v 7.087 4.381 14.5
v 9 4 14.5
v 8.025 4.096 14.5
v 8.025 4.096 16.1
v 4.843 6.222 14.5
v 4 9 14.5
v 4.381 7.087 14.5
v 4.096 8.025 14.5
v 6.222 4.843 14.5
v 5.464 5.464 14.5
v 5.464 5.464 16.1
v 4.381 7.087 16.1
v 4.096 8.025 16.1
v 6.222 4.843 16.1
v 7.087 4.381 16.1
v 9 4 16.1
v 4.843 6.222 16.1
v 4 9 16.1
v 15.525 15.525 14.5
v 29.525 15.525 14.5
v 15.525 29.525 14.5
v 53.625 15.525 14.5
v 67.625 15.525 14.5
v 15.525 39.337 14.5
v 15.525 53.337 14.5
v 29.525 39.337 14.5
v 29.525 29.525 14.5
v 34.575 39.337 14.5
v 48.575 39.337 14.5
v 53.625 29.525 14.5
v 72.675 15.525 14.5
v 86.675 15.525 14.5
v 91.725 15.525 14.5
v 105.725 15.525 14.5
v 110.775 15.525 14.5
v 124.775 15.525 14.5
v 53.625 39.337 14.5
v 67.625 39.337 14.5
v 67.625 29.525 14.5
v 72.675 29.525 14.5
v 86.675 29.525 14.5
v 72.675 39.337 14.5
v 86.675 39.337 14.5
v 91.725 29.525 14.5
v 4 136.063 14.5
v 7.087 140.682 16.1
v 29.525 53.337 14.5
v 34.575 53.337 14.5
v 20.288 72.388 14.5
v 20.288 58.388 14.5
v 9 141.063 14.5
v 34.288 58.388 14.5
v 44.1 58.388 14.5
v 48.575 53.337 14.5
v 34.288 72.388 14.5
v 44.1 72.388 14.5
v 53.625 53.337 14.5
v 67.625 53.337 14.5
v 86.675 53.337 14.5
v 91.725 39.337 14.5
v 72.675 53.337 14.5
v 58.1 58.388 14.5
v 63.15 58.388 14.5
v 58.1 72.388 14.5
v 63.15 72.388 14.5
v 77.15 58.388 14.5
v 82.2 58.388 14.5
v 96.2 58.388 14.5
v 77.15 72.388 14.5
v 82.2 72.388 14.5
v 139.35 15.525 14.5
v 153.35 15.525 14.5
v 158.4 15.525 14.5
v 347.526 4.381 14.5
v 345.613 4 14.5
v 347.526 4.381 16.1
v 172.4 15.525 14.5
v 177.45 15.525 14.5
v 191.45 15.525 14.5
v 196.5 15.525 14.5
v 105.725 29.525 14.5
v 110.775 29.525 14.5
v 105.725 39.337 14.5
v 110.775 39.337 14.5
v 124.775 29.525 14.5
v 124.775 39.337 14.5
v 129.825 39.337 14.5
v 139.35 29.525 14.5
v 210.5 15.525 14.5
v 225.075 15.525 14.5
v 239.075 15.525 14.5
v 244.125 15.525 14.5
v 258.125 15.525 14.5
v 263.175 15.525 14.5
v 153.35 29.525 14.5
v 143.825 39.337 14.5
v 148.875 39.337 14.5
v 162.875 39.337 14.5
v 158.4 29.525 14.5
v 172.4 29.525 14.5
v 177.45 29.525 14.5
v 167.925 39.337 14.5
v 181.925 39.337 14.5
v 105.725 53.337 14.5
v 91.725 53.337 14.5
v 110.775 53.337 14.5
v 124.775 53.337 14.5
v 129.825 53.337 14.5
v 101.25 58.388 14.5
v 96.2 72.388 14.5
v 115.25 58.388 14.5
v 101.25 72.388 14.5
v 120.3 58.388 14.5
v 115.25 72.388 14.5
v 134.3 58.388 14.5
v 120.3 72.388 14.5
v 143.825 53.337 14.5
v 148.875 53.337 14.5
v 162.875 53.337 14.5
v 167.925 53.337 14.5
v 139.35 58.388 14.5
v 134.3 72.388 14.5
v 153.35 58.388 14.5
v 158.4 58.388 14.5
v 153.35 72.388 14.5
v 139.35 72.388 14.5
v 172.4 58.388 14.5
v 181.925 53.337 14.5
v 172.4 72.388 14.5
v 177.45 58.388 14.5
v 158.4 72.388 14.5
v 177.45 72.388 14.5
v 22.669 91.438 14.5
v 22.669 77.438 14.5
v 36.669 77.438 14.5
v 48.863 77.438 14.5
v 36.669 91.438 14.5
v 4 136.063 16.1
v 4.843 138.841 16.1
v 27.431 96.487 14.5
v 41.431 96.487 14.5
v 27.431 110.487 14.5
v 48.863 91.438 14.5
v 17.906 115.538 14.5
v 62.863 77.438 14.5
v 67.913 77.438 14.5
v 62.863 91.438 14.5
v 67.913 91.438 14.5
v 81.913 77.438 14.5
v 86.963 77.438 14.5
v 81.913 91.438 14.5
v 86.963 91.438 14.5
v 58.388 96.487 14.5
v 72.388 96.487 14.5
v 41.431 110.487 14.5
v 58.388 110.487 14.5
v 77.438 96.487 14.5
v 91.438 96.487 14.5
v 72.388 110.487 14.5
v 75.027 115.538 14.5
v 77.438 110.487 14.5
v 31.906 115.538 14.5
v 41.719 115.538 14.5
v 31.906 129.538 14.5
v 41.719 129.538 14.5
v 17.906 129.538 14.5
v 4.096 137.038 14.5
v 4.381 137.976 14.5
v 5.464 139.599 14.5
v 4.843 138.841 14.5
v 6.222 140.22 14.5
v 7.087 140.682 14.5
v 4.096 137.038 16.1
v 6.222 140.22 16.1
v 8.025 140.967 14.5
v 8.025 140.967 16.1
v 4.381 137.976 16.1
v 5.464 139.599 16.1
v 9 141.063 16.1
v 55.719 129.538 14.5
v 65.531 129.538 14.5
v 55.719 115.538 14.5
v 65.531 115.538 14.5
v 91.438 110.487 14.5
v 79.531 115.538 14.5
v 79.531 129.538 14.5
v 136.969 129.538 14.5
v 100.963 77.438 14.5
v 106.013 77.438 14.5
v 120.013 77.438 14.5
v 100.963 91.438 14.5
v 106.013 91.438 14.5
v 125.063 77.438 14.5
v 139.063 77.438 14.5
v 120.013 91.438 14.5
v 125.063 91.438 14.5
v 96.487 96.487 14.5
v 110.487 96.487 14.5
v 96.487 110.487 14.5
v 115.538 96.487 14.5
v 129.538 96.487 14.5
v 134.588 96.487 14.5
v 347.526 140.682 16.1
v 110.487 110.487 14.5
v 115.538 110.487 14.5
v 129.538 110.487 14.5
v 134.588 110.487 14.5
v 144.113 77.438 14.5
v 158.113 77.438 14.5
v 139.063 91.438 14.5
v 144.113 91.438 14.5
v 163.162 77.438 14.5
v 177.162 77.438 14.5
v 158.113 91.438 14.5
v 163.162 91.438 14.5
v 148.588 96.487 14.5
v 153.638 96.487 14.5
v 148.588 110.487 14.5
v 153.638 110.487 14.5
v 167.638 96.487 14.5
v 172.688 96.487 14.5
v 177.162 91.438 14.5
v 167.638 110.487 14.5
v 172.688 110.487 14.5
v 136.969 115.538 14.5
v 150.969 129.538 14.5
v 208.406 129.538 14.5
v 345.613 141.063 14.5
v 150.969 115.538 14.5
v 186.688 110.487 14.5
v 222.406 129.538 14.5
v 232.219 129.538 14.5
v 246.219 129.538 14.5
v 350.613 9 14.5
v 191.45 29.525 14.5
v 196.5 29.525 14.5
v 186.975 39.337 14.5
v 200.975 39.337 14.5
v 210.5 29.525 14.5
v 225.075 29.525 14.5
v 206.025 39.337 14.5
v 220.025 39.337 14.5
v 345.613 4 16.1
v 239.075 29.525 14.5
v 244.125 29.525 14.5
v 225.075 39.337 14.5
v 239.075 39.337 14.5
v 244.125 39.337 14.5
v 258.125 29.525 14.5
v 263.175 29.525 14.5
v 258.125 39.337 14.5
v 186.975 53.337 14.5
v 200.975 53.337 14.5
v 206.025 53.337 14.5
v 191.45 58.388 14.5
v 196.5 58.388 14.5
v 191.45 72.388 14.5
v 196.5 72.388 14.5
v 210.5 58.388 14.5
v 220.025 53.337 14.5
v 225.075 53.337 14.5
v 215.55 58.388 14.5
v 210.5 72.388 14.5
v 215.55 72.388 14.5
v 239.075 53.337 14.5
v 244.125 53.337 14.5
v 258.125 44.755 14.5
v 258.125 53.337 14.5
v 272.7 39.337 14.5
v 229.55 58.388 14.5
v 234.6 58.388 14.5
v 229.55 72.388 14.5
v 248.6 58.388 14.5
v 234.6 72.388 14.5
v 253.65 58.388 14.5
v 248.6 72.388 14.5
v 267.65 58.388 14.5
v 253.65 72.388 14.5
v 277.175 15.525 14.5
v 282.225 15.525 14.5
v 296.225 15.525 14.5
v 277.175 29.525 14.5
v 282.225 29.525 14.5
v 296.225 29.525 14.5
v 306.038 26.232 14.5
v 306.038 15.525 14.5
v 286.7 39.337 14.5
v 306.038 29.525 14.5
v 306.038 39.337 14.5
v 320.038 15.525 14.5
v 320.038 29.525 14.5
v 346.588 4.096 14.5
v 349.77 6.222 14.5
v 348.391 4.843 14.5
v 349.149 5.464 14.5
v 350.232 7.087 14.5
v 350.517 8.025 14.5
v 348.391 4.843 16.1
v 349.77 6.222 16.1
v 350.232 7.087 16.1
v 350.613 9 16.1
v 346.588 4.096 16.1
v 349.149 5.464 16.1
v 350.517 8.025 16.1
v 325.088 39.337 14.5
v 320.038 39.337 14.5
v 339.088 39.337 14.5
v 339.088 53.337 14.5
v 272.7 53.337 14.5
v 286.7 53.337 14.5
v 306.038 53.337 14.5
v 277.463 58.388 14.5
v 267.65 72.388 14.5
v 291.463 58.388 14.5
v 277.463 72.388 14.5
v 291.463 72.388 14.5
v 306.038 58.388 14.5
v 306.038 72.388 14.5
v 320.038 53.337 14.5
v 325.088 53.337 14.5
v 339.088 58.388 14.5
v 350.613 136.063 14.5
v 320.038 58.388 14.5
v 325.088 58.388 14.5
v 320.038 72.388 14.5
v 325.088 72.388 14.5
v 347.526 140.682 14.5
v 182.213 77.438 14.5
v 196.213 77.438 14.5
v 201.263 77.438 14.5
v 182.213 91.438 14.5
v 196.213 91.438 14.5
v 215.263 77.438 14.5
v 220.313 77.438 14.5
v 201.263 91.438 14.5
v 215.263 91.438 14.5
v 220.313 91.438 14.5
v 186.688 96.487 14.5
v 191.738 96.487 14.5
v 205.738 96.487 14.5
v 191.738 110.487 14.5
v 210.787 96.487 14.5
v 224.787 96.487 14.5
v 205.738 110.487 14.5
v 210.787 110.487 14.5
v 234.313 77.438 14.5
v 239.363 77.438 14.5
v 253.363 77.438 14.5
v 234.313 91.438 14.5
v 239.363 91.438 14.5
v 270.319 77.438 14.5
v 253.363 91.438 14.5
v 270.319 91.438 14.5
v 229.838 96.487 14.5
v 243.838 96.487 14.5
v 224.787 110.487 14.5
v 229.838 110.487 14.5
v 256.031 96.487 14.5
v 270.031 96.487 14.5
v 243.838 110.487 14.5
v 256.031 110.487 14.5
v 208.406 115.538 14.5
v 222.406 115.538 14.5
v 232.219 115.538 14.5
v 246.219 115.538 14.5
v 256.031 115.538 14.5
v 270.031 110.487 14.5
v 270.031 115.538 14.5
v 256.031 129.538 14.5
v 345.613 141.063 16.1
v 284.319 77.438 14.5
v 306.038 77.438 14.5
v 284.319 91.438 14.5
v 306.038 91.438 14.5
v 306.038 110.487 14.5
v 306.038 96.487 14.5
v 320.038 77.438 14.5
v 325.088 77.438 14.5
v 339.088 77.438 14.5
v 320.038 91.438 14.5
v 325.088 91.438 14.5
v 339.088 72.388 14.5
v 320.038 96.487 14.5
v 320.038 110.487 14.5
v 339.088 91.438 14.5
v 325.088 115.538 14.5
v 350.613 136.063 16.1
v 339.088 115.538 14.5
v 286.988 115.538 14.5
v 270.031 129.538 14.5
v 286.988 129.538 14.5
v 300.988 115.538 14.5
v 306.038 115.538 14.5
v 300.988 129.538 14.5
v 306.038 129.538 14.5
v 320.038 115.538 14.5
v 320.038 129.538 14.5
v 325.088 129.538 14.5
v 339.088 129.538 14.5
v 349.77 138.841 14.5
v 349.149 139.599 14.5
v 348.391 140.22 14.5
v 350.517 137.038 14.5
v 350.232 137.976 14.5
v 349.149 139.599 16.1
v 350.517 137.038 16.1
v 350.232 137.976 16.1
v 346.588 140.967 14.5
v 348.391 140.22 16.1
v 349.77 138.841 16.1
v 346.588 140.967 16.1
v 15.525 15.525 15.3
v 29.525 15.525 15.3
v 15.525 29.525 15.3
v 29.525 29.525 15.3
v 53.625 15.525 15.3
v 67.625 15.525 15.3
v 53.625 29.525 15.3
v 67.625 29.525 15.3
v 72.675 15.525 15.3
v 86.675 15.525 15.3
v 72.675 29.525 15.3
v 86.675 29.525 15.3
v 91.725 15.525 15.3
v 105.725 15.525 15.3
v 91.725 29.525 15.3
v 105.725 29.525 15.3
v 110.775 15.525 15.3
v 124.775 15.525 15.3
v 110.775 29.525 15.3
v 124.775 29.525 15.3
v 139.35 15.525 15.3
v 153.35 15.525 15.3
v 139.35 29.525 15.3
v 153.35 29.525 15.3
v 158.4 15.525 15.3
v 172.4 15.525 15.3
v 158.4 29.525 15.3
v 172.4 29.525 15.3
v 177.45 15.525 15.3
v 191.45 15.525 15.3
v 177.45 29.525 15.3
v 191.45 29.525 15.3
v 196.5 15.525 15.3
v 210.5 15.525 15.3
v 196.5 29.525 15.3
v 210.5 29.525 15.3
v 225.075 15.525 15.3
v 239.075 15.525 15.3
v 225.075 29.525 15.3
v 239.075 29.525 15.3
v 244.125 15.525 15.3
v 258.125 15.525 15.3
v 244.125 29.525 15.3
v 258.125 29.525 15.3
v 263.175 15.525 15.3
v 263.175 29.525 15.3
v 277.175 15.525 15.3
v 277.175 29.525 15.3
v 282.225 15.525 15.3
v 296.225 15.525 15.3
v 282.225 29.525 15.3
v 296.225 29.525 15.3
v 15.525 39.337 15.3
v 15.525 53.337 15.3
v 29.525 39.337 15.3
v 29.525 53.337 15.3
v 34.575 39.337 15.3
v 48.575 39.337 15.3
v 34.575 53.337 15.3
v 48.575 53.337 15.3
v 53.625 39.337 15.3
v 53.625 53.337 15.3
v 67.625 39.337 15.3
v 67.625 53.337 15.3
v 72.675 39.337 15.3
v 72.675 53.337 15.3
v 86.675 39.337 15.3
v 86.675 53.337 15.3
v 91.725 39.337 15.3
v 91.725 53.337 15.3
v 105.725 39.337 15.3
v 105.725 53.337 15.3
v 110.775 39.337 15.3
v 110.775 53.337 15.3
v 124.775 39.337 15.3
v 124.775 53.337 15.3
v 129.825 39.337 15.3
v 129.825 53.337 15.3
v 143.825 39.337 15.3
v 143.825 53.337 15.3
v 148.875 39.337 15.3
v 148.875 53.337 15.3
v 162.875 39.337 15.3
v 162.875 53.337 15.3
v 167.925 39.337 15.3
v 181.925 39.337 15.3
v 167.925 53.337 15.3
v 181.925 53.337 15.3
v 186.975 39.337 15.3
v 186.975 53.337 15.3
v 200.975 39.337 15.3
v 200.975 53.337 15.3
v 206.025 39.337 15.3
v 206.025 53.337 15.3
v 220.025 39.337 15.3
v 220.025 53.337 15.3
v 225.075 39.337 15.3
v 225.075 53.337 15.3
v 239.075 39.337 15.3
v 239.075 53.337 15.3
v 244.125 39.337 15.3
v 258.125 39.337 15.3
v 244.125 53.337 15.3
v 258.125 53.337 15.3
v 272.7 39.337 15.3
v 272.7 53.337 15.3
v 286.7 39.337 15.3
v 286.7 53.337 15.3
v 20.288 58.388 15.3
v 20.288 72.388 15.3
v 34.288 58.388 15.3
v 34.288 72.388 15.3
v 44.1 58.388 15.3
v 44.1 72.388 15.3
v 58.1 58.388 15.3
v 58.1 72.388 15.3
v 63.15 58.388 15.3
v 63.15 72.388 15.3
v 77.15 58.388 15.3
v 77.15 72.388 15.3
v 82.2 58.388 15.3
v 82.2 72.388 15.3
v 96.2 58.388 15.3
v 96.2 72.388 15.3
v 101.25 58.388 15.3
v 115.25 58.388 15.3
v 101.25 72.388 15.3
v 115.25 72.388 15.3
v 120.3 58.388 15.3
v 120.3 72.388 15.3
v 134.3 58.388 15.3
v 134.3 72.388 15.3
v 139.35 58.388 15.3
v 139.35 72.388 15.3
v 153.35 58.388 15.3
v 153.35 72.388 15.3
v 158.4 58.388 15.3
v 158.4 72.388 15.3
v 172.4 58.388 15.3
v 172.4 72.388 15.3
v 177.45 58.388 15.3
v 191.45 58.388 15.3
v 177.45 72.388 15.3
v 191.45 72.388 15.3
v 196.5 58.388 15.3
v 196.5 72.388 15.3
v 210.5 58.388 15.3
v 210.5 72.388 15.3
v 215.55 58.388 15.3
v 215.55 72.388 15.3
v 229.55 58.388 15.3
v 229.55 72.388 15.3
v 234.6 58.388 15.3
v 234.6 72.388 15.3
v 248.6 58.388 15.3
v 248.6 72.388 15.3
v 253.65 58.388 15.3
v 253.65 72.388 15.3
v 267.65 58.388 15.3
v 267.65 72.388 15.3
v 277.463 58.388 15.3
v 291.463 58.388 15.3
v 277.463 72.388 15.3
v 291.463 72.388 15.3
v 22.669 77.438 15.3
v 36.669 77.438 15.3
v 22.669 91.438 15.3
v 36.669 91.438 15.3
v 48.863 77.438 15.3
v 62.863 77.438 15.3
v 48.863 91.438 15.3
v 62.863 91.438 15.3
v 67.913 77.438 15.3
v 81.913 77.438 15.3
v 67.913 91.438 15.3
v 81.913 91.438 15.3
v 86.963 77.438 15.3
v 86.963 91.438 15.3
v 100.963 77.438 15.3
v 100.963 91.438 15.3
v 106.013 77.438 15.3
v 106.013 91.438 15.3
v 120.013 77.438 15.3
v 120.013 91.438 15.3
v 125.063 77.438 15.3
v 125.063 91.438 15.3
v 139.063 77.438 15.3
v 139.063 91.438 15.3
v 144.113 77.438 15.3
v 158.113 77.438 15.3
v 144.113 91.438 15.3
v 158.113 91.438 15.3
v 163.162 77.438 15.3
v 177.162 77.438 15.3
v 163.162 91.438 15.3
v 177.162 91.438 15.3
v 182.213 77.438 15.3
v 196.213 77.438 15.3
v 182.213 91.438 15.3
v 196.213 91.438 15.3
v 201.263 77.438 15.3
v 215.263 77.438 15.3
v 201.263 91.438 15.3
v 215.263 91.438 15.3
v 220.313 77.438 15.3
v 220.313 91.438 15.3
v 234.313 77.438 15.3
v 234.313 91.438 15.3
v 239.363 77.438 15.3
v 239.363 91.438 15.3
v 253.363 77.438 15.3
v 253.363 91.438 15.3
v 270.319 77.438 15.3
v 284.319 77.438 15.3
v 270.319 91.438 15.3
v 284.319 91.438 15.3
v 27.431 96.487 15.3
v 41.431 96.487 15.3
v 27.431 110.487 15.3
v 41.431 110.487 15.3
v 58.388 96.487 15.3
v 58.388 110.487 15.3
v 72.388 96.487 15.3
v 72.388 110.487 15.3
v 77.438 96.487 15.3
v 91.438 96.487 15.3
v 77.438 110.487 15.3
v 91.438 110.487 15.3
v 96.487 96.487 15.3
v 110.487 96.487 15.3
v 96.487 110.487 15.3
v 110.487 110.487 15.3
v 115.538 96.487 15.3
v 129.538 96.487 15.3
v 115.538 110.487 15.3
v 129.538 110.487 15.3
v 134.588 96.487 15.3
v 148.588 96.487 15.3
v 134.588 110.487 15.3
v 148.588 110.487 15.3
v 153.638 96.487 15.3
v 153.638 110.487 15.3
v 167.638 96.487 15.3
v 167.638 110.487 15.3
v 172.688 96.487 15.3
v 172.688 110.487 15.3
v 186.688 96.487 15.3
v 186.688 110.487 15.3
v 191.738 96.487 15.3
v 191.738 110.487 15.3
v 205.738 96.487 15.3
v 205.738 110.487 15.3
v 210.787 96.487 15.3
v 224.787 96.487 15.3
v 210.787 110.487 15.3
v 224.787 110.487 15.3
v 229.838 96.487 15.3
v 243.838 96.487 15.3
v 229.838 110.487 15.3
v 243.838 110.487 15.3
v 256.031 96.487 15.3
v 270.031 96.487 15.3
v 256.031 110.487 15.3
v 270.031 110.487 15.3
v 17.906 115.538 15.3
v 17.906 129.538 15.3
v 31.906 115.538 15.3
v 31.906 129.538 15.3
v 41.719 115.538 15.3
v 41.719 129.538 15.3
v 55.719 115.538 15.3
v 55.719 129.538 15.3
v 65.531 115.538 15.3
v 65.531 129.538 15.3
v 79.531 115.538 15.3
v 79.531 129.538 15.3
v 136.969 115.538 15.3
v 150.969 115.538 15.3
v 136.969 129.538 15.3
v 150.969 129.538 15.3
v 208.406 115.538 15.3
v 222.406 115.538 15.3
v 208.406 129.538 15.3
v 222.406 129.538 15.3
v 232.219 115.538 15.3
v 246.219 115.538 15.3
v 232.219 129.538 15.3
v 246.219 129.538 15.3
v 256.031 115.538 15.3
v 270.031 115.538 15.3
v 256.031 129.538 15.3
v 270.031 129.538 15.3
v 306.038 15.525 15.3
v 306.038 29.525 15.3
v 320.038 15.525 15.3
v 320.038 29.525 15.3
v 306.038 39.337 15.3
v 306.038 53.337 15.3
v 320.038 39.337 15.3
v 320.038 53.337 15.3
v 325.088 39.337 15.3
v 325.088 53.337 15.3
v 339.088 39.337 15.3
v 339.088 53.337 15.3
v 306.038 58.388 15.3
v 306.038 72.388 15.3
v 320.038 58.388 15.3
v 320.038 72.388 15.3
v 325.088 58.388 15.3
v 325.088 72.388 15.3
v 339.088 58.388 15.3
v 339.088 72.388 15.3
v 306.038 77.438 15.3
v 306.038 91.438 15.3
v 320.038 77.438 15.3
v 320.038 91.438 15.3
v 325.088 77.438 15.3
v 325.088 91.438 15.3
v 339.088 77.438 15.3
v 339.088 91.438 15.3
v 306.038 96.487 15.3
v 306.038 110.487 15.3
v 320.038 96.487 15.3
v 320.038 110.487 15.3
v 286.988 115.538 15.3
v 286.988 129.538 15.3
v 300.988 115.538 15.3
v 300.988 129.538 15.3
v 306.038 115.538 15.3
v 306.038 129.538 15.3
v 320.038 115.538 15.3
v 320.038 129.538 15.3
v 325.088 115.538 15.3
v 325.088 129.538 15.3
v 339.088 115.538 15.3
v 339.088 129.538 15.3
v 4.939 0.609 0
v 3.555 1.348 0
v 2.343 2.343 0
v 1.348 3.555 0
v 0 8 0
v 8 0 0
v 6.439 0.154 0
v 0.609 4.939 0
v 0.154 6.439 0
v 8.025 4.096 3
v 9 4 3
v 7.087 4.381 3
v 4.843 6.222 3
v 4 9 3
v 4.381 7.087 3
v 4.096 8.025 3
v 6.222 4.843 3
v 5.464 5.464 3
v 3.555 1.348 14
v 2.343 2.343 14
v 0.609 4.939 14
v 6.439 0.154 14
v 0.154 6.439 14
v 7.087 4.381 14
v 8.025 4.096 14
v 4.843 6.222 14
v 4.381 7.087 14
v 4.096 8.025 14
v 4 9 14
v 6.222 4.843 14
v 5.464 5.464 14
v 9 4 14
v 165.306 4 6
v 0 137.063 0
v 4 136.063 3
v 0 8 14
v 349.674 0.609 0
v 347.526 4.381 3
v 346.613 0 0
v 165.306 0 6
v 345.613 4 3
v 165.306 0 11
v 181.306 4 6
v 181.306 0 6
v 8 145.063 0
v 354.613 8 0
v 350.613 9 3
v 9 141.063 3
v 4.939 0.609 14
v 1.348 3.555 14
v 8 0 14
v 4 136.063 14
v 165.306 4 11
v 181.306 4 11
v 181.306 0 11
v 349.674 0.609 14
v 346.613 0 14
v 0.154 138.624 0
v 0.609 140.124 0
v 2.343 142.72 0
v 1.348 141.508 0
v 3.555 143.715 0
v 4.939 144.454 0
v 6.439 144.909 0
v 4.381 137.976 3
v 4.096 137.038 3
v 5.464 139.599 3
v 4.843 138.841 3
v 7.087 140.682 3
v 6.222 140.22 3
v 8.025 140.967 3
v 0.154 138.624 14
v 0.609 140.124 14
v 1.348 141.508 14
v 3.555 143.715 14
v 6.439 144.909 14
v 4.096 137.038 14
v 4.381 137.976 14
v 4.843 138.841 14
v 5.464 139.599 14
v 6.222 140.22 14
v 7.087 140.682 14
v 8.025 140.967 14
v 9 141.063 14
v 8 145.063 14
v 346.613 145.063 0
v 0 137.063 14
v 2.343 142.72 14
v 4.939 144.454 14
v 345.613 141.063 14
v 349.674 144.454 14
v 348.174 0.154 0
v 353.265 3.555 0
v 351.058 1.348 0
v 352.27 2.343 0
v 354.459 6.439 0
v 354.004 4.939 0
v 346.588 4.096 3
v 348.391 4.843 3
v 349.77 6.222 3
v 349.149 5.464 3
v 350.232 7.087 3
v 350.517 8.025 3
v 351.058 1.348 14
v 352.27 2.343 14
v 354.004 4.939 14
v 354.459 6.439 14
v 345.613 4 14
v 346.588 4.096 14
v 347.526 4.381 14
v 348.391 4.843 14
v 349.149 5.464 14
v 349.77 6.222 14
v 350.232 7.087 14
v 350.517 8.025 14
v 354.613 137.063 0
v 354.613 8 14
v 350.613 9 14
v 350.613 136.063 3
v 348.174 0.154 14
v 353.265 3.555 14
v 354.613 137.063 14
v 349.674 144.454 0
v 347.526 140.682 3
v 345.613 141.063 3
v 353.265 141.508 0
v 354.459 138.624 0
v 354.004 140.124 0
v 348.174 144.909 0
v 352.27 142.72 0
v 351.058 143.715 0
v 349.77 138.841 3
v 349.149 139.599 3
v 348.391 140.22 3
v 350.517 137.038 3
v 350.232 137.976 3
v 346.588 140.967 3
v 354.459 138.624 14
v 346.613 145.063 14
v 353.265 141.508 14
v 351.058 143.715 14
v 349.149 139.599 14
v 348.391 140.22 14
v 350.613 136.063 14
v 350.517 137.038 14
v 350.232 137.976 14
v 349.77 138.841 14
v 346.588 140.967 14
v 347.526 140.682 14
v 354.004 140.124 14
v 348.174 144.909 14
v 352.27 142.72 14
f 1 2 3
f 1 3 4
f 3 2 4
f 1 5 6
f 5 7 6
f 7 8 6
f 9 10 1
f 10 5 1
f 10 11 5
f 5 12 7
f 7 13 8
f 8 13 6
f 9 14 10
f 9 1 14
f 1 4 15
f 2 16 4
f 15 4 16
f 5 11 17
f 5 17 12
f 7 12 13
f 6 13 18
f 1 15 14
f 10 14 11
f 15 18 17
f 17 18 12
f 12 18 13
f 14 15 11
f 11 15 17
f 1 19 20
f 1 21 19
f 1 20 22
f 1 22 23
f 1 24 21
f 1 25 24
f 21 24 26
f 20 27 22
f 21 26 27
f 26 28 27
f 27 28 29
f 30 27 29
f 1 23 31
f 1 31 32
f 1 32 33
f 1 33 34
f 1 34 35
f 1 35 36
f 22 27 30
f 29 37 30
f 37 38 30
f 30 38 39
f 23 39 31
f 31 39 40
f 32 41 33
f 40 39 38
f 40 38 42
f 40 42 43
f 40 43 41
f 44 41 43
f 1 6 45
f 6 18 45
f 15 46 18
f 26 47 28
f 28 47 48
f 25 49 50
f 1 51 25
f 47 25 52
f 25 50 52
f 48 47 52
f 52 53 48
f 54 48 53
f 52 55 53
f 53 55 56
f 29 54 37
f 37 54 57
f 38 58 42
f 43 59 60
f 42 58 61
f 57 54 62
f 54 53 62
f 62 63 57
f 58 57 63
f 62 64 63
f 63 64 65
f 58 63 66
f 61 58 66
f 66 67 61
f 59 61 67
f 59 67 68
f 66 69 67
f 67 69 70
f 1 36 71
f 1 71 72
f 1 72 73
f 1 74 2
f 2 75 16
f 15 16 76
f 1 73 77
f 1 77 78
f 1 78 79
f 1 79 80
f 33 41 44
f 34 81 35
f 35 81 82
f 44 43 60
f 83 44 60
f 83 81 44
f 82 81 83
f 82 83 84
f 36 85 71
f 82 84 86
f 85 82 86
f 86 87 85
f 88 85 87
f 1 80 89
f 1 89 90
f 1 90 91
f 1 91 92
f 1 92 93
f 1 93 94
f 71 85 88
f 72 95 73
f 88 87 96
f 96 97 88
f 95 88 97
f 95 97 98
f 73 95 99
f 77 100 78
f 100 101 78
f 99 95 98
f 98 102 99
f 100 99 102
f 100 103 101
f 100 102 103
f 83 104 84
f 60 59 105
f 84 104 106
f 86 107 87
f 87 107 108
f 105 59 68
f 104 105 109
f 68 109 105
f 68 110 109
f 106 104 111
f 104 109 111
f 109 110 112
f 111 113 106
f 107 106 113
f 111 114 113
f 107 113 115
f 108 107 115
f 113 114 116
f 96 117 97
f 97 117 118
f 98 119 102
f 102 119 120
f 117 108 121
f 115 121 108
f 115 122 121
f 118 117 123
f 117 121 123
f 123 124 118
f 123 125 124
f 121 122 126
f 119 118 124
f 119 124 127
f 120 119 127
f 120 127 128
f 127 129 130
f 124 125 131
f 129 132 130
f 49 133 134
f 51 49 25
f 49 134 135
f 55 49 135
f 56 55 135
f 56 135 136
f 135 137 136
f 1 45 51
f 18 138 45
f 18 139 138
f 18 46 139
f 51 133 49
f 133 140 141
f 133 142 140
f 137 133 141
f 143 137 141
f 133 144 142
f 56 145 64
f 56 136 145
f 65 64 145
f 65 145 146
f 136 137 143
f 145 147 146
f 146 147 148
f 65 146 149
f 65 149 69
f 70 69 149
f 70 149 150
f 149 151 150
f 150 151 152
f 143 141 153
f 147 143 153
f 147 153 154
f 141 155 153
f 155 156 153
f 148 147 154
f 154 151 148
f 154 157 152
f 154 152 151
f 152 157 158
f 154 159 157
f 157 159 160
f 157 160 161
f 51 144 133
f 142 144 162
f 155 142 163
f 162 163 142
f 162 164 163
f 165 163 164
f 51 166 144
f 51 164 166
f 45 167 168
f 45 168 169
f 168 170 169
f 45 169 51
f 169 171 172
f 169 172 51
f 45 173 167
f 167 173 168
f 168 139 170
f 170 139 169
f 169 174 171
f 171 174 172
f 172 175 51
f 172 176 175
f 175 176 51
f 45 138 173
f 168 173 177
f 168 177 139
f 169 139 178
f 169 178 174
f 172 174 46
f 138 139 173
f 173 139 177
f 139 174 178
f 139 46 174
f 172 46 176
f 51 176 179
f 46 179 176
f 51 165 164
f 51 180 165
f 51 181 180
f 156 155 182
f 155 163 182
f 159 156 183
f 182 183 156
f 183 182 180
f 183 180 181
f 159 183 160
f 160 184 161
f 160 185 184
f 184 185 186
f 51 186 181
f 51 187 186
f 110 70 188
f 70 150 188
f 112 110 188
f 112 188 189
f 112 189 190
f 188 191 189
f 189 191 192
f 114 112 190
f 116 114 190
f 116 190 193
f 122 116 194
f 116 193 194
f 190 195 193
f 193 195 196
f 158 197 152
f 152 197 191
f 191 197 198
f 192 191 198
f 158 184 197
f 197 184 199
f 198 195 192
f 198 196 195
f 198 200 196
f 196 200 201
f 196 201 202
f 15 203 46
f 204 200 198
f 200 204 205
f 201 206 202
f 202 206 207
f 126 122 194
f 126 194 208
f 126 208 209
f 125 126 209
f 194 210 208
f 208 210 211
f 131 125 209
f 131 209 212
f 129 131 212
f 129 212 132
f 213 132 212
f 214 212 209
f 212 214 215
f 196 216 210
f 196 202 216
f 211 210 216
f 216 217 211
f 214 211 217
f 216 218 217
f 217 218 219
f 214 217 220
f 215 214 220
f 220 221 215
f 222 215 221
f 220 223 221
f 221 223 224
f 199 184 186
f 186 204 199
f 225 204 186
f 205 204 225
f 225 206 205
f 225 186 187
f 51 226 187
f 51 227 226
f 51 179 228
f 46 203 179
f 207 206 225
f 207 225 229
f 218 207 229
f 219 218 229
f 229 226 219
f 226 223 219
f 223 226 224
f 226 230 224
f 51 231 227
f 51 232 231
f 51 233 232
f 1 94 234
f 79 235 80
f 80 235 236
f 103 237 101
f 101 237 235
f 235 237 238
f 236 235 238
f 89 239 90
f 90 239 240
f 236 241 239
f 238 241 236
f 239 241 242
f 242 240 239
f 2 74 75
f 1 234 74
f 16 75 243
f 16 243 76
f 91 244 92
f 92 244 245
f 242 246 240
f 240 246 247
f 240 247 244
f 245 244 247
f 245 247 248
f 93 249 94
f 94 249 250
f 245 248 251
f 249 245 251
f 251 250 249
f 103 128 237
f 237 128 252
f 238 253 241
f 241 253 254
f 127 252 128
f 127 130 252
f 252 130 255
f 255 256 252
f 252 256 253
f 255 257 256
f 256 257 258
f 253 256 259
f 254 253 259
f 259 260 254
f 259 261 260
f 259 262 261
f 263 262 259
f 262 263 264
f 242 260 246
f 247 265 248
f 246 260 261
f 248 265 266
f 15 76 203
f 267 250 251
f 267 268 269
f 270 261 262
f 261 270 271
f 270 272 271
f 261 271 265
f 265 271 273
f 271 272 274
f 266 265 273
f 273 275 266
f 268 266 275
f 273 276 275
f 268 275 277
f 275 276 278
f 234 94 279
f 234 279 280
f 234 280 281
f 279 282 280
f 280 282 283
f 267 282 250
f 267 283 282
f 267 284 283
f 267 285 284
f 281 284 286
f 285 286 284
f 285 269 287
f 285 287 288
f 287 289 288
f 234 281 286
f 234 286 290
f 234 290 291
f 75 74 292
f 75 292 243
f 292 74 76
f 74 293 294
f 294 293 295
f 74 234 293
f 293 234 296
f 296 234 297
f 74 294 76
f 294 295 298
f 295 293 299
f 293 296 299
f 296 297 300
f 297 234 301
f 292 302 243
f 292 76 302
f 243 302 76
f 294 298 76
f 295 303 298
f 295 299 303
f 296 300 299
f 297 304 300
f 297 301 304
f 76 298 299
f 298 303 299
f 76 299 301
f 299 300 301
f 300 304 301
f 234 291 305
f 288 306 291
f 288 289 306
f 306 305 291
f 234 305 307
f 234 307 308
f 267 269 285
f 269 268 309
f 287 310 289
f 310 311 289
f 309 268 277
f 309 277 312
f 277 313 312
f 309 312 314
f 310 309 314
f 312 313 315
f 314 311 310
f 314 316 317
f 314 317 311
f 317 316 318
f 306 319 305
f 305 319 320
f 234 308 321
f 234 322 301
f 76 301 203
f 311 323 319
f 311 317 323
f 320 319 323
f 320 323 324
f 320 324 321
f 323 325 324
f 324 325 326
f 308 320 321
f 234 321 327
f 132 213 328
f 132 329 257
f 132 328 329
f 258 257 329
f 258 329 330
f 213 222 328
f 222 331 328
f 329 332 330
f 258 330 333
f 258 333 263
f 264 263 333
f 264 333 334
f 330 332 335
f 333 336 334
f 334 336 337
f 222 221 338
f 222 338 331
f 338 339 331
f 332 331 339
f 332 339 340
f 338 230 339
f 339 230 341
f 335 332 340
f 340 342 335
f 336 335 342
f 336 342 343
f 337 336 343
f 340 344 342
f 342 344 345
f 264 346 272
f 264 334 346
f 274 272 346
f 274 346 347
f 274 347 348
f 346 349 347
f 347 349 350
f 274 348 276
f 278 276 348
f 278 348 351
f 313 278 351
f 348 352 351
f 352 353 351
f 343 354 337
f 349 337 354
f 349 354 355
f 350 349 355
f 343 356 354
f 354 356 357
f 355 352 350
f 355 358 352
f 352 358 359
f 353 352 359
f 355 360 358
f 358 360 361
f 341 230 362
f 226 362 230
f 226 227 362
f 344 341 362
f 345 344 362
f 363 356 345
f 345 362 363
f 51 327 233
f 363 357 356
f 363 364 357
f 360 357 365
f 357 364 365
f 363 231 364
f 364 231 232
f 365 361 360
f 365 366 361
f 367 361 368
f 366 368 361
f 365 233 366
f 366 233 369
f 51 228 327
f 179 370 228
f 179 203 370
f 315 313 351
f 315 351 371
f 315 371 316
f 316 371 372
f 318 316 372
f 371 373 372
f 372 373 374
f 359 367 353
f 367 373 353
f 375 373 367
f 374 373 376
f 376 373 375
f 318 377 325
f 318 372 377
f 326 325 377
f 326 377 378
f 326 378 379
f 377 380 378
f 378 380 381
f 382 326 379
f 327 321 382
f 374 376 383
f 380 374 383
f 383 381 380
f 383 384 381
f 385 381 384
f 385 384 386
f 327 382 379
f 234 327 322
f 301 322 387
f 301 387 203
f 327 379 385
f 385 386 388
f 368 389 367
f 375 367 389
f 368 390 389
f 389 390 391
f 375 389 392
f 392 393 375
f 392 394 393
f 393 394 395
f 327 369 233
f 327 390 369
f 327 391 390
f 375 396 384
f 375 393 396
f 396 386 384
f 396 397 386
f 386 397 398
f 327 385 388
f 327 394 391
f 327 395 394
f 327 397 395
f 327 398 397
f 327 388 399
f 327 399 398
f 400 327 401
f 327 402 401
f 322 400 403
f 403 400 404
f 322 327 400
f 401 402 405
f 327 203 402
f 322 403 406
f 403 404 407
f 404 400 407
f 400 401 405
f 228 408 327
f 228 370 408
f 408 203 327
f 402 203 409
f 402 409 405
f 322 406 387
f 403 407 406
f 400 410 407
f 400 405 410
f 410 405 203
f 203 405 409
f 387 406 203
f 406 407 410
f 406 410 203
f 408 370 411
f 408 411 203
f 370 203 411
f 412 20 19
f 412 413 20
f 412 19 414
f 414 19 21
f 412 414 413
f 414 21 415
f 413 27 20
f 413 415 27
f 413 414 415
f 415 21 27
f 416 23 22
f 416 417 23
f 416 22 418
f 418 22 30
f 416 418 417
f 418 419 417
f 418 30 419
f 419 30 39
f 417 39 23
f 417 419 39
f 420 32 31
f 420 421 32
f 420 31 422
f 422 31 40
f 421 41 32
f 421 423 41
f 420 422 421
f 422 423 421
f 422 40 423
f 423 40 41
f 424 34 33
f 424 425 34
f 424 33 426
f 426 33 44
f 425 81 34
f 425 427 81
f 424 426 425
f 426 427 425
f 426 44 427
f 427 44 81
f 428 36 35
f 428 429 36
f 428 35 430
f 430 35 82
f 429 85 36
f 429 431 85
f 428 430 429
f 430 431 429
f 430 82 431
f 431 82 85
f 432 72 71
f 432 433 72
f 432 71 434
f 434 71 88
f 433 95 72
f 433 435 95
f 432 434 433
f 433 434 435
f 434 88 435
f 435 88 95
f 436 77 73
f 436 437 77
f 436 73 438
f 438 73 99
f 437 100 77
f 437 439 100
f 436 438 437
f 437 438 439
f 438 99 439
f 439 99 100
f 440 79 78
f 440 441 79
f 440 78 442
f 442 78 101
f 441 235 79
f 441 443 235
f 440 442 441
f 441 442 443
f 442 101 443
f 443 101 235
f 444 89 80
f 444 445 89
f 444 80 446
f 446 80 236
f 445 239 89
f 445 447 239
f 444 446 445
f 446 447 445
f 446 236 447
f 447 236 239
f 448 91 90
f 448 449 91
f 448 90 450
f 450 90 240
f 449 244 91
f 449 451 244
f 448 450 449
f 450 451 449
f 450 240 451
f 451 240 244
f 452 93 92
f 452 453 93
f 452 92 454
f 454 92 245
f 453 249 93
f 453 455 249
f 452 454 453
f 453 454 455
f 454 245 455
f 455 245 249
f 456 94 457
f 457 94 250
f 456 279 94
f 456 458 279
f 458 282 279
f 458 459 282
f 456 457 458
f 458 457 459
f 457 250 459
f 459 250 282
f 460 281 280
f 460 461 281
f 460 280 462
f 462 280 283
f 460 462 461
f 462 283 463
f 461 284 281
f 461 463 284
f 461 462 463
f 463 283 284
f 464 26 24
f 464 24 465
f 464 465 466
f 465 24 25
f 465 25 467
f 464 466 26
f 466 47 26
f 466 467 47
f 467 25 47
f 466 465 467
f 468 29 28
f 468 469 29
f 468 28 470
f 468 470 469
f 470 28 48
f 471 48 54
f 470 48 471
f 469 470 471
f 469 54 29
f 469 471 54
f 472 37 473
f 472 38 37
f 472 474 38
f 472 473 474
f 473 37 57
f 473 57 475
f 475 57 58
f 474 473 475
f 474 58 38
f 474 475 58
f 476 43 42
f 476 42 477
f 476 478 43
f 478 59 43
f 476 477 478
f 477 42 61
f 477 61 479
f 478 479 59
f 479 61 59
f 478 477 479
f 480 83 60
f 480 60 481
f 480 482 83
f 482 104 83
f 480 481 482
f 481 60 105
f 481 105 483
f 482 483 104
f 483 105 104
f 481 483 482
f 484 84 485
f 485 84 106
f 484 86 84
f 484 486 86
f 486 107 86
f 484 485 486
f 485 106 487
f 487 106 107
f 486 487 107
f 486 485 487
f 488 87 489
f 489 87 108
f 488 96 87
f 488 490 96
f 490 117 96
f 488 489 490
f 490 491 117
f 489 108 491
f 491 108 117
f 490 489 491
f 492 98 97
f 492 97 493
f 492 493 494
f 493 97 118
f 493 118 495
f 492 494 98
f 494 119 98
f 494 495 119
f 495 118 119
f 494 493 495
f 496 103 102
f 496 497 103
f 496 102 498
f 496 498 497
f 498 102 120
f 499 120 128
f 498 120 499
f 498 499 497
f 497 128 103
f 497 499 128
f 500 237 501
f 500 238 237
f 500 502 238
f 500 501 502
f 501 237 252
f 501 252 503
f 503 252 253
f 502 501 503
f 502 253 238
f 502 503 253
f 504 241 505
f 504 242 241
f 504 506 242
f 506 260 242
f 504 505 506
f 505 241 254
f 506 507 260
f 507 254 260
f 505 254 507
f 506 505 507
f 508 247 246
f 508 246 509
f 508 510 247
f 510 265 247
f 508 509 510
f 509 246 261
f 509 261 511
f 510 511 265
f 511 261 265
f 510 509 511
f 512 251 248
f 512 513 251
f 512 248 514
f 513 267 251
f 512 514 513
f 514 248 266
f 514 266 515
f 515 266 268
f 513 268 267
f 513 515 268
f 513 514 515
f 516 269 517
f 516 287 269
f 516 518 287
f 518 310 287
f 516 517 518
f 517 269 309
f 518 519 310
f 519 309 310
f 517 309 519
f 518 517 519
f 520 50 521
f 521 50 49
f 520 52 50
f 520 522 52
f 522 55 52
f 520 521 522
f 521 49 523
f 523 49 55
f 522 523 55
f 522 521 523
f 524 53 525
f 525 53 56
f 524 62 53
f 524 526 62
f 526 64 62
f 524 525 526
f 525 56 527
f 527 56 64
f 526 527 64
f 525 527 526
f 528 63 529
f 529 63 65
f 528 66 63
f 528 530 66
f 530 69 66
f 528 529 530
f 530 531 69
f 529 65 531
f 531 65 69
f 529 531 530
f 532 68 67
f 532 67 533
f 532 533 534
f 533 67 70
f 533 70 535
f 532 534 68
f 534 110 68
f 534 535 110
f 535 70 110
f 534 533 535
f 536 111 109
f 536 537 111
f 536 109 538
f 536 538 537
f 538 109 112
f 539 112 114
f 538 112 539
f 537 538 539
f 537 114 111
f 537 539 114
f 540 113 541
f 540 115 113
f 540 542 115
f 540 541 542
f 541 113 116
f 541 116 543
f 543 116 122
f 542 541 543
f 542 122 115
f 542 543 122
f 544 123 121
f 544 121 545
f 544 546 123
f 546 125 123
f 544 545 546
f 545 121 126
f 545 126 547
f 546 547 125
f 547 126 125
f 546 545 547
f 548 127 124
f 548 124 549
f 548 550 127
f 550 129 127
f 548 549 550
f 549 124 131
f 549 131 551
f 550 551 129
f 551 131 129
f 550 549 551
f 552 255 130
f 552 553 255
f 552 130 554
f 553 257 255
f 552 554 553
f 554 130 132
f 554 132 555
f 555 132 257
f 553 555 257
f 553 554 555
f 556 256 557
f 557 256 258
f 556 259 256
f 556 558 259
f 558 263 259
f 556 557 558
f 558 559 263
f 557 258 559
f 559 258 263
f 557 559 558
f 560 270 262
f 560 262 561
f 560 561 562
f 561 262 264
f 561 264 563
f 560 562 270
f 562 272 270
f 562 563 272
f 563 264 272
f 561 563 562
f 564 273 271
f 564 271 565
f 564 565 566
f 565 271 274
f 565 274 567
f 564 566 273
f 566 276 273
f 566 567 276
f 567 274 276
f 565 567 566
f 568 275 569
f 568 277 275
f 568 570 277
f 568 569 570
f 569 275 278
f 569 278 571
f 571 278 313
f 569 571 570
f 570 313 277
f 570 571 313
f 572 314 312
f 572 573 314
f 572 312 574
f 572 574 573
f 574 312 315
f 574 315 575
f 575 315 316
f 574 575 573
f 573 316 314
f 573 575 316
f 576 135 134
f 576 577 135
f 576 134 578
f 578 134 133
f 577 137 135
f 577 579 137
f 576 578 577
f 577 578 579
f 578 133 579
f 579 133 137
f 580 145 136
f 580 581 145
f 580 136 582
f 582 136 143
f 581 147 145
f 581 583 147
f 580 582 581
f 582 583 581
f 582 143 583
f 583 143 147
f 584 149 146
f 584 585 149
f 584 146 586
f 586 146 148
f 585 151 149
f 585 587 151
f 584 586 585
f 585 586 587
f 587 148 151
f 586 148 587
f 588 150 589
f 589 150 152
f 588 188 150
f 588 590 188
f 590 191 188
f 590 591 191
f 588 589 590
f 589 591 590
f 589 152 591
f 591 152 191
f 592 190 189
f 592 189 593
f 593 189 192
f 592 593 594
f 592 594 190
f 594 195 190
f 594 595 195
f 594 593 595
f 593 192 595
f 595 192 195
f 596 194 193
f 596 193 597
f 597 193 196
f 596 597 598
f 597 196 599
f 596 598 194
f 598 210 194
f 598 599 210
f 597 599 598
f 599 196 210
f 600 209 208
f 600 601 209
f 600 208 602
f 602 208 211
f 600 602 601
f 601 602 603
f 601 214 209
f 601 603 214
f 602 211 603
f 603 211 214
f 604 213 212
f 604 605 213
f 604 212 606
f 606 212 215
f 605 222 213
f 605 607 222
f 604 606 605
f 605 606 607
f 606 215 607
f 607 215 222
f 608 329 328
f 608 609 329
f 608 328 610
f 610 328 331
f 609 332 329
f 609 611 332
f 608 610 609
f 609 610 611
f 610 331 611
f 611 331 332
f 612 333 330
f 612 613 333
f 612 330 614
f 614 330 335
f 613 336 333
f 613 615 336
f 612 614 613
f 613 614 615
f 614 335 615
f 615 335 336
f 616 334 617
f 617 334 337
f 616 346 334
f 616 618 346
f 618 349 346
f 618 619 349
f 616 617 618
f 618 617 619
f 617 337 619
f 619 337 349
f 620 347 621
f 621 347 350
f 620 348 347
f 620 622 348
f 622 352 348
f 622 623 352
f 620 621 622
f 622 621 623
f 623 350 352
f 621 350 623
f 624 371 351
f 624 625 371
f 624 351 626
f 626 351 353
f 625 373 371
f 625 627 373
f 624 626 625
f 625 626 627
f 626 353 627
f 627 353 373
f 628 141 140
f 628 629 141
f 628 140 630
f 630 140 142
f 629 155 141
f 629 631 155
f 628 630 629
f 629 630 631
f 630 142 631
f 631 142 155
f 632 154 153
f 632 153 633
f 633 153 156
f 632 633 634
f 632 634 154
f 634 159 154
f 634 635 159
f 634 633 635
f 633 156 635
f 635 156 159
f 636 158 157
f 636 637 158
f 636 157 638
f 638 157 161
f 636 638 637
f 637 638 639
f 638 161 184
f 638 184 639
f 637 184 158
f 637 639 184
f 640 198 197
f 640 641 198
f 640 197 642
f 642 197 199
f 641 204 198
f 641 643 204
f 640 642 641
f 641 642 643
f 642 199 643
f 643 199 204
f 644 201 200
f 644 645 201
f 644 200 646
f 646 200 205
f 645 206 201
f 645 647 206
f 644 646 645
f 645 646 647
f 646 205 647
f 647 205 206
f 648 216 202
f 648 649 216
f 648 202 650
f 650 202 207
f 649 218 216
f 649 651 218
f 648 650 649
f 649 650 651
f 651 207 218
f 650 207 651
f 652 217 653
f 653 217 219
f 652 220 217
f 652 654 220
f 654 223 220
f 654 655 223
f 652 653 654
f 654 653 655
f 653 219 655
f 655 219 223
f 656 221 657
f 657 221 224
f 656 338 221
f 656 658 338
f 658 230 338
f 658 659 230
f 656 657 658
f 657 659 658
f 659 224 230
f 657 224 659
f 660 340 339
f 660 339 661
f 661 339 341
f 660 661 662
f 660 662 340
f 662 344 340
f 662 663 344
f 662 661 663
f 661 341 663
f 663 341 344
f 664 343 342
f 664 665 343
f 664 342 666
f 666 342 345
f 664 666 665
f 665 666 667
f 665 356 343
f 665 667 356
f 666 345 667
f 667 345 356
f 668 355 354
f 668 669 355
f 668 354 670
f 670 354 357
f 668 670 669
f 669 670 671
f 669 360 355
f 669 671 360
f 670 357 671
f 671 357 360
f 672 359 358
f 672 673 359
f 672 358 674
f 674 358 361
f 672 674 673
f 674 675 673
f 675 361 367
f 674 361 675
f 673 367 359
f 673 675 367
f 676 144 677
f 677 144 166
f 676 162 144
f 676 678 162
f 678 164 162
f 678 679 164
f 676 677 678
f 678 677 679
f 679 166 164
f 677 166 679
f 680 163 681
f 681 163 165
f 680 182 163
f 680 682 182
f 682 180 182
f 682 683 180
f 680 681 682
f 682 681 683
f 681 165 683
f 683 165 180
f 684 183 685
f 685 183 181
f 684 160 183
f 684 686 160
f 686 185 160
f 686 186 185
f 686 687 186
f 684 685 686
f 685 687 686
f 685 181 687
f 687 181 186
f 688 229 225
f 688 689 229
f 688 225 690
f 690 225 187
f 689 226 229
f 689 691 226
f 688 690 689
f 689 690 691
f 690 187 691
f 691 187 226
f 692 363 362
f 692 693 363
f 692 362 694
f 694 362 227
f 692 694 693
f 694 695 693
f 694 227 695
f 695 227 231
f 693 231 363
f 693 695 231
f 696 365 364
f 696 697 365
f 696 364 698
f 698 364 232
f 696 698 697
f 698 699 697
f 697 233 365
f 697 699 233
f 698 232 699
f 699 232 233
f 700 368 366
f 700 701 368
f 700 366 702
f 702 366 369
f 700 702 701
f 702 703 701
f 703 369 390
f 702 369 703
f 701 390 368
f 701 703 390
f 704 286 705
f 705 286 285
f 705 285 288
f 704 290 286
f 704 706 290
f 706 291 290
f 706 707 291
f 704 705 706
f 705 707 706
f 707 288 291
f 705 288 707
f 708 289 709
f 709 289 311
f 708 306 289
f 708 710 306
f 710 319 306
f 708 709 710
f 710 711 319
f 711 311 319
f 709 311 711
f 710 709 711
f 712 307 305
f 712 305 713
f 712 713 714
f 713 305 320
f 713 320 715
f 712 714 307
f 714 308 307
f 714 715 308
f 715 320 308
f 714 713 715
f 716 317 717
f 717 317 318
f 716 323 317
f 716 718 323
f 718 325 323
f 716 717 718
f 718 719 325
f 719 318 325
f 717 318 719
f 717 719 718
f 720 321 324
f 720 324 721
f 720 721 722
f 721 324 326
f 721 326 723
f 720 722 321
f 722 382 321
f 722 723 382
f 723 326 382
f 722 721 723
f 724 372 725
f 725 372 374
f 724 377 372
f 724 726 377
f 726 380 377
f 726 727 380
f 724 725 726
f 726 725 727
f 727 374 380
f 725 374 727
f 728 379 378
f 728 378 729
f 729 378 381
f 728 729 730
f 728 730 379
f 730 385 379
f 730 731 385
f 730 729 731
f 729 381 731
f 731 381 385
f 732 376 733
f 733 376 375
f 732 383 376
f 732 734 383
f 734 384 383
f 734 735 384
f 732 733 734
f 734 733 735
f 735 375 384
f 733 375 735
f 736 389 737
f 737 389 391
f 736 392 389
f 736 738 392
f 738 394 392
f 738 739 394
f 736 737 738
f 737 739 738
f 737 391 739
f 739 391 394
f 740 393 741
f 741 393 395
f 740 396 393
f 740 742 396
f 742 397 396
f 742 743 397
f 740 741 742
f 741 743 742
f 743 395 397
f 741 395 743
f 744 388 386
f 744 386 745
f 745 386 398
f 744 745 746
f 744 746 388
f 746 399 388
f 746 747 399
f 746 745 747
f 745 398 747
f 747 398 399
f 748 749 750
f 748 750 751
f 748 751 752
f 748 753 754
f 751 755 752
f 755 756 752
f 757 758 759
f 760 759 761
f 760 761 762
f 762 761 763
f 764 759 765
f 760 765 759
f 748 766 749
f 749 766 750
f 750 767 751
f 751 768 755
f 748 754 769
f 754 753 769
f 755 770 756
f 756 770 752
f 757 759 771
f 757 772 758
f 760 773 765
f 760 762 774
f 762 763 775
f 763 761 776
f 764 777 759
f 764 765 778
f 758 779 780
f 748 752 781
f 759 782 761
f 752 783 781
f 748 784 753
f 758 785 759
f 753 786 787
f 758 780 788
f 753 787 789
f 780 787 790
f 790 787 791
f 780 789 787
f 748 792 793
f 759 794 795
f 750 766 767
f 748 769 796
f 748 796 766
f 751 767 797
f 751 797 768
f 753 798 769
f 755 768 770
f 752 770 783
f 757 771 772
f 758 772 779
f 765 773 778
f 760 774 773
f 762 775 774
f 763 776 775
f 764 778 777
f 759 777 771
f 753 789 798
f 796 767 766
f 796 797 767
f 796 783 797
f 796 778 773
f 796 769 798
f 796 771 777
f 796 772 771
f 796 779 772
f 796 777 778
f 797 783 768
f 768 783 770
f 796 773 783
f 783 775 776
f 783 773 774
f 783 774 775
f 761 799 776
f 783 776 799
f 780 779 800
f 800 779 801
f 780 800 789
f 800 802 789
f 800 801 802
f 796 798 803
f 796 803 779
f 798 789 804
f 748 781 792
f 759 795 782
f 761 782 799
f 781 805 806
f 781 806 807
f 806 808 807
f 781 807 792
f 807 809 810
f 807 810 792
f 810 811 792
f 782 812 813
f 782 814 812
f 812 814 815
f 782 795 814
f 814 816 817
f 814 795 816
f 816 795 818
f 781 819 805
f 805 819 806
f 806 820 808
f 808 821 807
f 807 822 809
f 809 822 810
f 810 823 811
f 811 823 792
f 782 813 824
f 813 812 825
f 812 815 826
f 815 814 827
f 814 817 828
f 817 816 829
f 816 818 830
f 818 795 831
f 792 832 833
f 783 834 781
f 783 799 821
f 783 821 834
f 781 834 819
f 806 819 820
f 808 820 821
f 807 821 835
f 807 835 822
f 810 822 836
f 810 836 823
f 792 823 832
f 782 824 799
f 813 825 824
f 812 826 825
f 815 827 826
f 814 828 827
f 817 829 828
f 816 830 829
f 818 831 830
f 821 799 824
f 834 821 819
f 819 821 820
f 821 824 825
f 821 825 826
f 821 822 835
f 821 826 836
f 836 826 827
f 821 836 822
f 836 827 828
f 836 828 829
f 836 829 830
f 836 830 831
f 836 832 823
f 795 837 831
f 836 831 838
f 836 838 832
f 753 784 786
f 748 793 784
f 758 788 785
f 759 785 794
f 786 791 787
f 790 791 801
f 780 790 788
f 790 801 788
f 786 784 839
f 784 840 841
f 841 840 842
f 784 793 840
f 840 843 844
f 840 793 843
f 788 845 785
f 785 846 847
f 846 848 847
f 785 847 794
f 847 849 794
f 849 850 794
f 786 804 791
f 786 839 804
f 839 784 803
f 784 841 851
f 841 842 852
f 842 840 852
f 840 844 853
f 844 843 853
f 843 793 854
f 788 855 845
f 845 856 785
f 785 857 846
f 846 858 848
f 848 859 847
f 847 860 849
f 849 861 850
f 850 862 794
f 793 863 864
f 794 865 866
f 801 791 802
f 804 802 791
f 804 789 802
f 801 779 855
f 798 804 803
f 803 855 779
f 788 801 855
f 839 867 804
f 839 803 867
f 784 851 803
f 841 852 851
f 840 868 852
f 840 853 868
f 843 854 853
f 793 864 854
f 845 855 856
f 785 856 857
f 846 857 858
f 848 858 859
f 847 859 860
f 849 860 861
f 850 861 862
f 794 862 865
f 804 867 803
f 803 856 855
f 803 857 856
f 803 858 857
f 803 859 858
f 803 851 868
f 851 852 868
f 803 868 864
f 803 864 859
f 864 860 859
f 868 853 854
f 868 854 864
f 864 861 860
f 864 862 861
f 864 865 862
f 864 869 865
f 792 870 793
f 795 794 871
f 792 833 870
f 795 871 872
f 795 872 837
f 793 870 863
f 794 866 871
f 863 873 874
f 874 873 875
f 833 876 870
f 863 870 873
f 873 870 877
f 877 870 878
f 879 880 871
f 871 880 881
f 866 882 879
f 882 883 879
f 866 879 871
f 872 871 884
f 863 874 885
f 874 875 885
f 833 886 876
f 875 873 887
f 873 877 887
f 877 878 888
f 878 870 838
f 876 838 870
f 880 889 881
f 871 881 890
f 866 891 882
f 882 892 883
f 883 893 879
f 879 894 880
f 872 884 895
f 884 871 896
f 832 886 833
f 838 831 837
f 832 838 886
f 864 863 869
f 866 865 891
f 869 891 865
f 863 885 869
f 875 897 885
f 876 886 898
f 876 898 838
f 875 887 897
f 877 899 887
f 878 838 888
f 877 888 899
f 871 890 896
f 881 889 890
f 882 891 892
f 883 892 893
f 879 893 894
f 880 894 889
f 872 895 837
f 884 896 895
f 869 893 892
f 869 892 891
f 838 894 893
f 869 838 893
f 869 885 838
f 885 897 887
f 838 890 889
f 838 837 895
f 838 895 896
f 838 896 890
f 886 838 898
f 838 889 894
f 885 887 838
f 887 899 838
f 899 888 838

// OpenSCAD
// Generated by scripts/generate.mjs. Edit hardware/layout/oso75.layout.json.
$fn = 32;
unit = 19.05;
plate_thickness = 1.6;
case_wall = 4;
case_floor = 3;
switch_cutout = 14;
board_width = 346.613;
board_height = 137.063;
keys = [
  [9.525, 9.525, 19.050, 19.050, "Esc"],
  [47.625, 9.525, 19.050, 19.050, "F1"],
  [66.675, 9.525, 19.050, 19.050, "F2"],
  [85.725, 9.525, 19.050, 19.050, "F3"],
  [104.775, 9.525, 19.050, 19.050, "F4"],
  [133.350, 9.525, 19.050, 19.050, "F5"],
  [152.400, 9.525, 19.050, 19.050, "F6"],
  [171.450, 9.525, 19.050, 19.050, "F7"],
  [190.500, 9.525, 19.050, 19.050, "F8"],
  [219.075, 9.525, 19.050, 19.050, "F9"],
  [238.125, 9.525, 19.050, 19.050, "F10"],
  [257.175, 9.525, 19.050, 19.050, "F11"],
  [276.225, 9.525, 19.050, 19.050, "F12"],
  [9.525, 33.337, 19.050, 19.050, "`"],
  [28.575, 33.337, 19.050, 19.050, "1"],
  [47.625, 33.337, 19.050, 19.050, "2"],
  [66.675, 33.337, 19.050, 19.050, "3"],
  [85.725, 33.337, 19.050, 19.050, "4"],
  [104.775, 33.337, 19.050, 19.050, "5"],
  [123.825, 33.337, 19.050, 19.050, "6"],
  [142.875, 33.337, 19.050, 19.050, "7"],
  [161.925, 33.337, 19.050, 19.050, "8"],
  [180.975, 33.337, 19.050, 19.050, "9"],
  [200.025, 33.337, 19.050, 19.050, "0"],
  [219.075, 33.337, 19.050, 19.050, "-"],
  [238.125, 33.337, 19.050, 19.050, "="],
  [266.700, 33.337, 38.100, 19.050, "Backspace"],
  [14.288, 52.388, 28.575, 19.050, "Tab"],
  [38.100, 52.388, 19.050, 19.050, "Q"],
  [57.150, 52.388, 19.050, 19.050, "W"],
  [76.200, 52.388, 19.050, 19.050, "E"],
  [95.250, 52.388, 19.050, 19.050, "R"],
  [114.300, 52.388, 19.050, 19.050, "T"],
  [133.350, 52.388, 19.050, 19.050, "Y"],
  [152.400, 52.388, 19.050, 19.050, "U"],
  [171.450, 52.388, 19.050, 19.050, "I"],
  [190.500, 52.388, 19.050, 19.050, "O"],
  [209.550, 52.388, 19.050, 19.050, "P"],
  [228.600, 52.388, 19.050, 19.050, "["],
  [247.650, 52.388, 19.050, 19.050, "]"],
  [271.463, 52.388, 28.575, 19.050, "\\"],
  [16.669, 71.438, 33.337, 19.050, "Caps"],
  [42.863, 71.438, 19.050, 19.050, "A"],
  [61.913, 71.438, 19.050, 19.050, "S"],
  [80.963, 71.438, 19.050, 19.050, "D"],
  [100.013, 71.438, 19.050, 19.050, "F"],
  [119.063, 71.438, 19.050, 19.050, "G"],
  [138.113, 71.438, 19.050, 19.050, "H"],
  [157.162, 71.438, 19.050, 19.050, "J"],
  [176.213, 71.438, 19.050, 19.050, "K"],
  [195.263, 71.438, 19.050, 19.050, "L"],
  [214.313, 71.438, 19.050, 19.050, ";"],
  [233.363, 71.438, 19.050, 19.050, "'"],
  [264.319, 71.438, 42.863, 19.050, "Enter"],
  [21.431, 90.487, 42.863, 19.050, "LShift"],
  [52.388, 90.487, 19.050, 19.050, "Z"],
  [71.438, 90.487, 19.050, 19.050, "X"],
  [90.487, 90.487, 19.050, 19.050, "C"],
  [109.538, 90.487, 19.050, 19.050, "V"],
  [128.588, 90.487, 19.050, 19.050, "B"],
  [147.638, 90.487, 19.050, 19.050, "N"],
  [166.688, 90.487, 19.050, 19.050, "M"],
  [185.738, 90.487, 19.050, 19.050, ","],
  [204.787, 90.487, 19.050, 19.050, "."],
  [223.838, 90.487, 19.050, 19.050, "/"],
  [250.031, 90.487, 33.337, 19.050, "RShift"],
  [11.906, 109.538, 23.813, 19.050, "LCtrl"],
  [35.719, 109.538, 23.813, 19.050, "LGUI"],
  [59.531, 109.538, 23.813, 19.050, "LAlt"],
  [130.969, 109.538, 119.063, 19.050, "Space"],
  [202.406, 109.538, 23.813, 19.050, "RAlt"],
  [226.219, 109.538, 23.813, 19.050, "Fn"],
  [250.031, 109.538, 23.813, 19.050, "RCtrl"],
  [300.038, 9.525, 19.050, 19.050, "PrtSc"],
  [300.038, 33.337, 19.050, 19.050, "Ins"],
  [319.088, 33.337, 19.050, 19.050, "Home"],
  [300.038, 52.388, 19.050, 19.050, "PgUp"],
  [319.088, 52.388, 19.050, 19.050, "Del"],
  [300.038, 71.438, 19.050, 19.050, "End"],
  [319.088, 71.438, 19.050, 19.050, "PgDn"],
  [300.038, 90.487, 19.050, 19.050, "Up"],
  [280.988, 109.538, 19.050, 19.050, "Left"],
  [300.038, 109.538, 19.050, 19.050, "Down"],
  [319.088, 109.538, 19.050, 19.050, "Right"]
];

module rounded_box(size, radius) {
  hull() {
    translate([radius, radius, 0]) cylinder(h = size[2], r = radius);
    translate([size[0] - radius, radius, 0]) cylinder(h = size[2], r = radius);
    translate([radius, size[1] - radius, 0]) cylinder(h = size[2], r = radius);
    translate([size[0] - radius, size[1] - radius, 0]) cylinder(h = size[2], r = radius);
  }
}

module switch_cutouts() {
  for (k = keys) {
    translate([k[0] + 9, k[1] + 9, -0.1])
      cube([switch_cutout, switch_cutout, plate_thickness + 0.2], center = true);
  }
}

module plate() {
  difference() {
    translate([0, 0, 0]) rounded_box([board_width, board_height, plate_thickness], 5);
    switch_cutouts();
  }
}

module tray_case() {
  difference() {
    rounded_box([board_width + case_wall * 2, board_height + case_wall * 2, 14], 8);
    translate([case_wall, case_wall, case_floor])
      rounded_box([board_width, board_height, 14], 5);
    translate([board_width / 2 - 8, -0.1, 6])
      cube([16, case_wall + 0.2, 5], center = false);
  }
}

translate([case_wall, case_wall, 14.5]) plate();
color([0.08, 0.09, 0.1, 0.35]) tray_case();
